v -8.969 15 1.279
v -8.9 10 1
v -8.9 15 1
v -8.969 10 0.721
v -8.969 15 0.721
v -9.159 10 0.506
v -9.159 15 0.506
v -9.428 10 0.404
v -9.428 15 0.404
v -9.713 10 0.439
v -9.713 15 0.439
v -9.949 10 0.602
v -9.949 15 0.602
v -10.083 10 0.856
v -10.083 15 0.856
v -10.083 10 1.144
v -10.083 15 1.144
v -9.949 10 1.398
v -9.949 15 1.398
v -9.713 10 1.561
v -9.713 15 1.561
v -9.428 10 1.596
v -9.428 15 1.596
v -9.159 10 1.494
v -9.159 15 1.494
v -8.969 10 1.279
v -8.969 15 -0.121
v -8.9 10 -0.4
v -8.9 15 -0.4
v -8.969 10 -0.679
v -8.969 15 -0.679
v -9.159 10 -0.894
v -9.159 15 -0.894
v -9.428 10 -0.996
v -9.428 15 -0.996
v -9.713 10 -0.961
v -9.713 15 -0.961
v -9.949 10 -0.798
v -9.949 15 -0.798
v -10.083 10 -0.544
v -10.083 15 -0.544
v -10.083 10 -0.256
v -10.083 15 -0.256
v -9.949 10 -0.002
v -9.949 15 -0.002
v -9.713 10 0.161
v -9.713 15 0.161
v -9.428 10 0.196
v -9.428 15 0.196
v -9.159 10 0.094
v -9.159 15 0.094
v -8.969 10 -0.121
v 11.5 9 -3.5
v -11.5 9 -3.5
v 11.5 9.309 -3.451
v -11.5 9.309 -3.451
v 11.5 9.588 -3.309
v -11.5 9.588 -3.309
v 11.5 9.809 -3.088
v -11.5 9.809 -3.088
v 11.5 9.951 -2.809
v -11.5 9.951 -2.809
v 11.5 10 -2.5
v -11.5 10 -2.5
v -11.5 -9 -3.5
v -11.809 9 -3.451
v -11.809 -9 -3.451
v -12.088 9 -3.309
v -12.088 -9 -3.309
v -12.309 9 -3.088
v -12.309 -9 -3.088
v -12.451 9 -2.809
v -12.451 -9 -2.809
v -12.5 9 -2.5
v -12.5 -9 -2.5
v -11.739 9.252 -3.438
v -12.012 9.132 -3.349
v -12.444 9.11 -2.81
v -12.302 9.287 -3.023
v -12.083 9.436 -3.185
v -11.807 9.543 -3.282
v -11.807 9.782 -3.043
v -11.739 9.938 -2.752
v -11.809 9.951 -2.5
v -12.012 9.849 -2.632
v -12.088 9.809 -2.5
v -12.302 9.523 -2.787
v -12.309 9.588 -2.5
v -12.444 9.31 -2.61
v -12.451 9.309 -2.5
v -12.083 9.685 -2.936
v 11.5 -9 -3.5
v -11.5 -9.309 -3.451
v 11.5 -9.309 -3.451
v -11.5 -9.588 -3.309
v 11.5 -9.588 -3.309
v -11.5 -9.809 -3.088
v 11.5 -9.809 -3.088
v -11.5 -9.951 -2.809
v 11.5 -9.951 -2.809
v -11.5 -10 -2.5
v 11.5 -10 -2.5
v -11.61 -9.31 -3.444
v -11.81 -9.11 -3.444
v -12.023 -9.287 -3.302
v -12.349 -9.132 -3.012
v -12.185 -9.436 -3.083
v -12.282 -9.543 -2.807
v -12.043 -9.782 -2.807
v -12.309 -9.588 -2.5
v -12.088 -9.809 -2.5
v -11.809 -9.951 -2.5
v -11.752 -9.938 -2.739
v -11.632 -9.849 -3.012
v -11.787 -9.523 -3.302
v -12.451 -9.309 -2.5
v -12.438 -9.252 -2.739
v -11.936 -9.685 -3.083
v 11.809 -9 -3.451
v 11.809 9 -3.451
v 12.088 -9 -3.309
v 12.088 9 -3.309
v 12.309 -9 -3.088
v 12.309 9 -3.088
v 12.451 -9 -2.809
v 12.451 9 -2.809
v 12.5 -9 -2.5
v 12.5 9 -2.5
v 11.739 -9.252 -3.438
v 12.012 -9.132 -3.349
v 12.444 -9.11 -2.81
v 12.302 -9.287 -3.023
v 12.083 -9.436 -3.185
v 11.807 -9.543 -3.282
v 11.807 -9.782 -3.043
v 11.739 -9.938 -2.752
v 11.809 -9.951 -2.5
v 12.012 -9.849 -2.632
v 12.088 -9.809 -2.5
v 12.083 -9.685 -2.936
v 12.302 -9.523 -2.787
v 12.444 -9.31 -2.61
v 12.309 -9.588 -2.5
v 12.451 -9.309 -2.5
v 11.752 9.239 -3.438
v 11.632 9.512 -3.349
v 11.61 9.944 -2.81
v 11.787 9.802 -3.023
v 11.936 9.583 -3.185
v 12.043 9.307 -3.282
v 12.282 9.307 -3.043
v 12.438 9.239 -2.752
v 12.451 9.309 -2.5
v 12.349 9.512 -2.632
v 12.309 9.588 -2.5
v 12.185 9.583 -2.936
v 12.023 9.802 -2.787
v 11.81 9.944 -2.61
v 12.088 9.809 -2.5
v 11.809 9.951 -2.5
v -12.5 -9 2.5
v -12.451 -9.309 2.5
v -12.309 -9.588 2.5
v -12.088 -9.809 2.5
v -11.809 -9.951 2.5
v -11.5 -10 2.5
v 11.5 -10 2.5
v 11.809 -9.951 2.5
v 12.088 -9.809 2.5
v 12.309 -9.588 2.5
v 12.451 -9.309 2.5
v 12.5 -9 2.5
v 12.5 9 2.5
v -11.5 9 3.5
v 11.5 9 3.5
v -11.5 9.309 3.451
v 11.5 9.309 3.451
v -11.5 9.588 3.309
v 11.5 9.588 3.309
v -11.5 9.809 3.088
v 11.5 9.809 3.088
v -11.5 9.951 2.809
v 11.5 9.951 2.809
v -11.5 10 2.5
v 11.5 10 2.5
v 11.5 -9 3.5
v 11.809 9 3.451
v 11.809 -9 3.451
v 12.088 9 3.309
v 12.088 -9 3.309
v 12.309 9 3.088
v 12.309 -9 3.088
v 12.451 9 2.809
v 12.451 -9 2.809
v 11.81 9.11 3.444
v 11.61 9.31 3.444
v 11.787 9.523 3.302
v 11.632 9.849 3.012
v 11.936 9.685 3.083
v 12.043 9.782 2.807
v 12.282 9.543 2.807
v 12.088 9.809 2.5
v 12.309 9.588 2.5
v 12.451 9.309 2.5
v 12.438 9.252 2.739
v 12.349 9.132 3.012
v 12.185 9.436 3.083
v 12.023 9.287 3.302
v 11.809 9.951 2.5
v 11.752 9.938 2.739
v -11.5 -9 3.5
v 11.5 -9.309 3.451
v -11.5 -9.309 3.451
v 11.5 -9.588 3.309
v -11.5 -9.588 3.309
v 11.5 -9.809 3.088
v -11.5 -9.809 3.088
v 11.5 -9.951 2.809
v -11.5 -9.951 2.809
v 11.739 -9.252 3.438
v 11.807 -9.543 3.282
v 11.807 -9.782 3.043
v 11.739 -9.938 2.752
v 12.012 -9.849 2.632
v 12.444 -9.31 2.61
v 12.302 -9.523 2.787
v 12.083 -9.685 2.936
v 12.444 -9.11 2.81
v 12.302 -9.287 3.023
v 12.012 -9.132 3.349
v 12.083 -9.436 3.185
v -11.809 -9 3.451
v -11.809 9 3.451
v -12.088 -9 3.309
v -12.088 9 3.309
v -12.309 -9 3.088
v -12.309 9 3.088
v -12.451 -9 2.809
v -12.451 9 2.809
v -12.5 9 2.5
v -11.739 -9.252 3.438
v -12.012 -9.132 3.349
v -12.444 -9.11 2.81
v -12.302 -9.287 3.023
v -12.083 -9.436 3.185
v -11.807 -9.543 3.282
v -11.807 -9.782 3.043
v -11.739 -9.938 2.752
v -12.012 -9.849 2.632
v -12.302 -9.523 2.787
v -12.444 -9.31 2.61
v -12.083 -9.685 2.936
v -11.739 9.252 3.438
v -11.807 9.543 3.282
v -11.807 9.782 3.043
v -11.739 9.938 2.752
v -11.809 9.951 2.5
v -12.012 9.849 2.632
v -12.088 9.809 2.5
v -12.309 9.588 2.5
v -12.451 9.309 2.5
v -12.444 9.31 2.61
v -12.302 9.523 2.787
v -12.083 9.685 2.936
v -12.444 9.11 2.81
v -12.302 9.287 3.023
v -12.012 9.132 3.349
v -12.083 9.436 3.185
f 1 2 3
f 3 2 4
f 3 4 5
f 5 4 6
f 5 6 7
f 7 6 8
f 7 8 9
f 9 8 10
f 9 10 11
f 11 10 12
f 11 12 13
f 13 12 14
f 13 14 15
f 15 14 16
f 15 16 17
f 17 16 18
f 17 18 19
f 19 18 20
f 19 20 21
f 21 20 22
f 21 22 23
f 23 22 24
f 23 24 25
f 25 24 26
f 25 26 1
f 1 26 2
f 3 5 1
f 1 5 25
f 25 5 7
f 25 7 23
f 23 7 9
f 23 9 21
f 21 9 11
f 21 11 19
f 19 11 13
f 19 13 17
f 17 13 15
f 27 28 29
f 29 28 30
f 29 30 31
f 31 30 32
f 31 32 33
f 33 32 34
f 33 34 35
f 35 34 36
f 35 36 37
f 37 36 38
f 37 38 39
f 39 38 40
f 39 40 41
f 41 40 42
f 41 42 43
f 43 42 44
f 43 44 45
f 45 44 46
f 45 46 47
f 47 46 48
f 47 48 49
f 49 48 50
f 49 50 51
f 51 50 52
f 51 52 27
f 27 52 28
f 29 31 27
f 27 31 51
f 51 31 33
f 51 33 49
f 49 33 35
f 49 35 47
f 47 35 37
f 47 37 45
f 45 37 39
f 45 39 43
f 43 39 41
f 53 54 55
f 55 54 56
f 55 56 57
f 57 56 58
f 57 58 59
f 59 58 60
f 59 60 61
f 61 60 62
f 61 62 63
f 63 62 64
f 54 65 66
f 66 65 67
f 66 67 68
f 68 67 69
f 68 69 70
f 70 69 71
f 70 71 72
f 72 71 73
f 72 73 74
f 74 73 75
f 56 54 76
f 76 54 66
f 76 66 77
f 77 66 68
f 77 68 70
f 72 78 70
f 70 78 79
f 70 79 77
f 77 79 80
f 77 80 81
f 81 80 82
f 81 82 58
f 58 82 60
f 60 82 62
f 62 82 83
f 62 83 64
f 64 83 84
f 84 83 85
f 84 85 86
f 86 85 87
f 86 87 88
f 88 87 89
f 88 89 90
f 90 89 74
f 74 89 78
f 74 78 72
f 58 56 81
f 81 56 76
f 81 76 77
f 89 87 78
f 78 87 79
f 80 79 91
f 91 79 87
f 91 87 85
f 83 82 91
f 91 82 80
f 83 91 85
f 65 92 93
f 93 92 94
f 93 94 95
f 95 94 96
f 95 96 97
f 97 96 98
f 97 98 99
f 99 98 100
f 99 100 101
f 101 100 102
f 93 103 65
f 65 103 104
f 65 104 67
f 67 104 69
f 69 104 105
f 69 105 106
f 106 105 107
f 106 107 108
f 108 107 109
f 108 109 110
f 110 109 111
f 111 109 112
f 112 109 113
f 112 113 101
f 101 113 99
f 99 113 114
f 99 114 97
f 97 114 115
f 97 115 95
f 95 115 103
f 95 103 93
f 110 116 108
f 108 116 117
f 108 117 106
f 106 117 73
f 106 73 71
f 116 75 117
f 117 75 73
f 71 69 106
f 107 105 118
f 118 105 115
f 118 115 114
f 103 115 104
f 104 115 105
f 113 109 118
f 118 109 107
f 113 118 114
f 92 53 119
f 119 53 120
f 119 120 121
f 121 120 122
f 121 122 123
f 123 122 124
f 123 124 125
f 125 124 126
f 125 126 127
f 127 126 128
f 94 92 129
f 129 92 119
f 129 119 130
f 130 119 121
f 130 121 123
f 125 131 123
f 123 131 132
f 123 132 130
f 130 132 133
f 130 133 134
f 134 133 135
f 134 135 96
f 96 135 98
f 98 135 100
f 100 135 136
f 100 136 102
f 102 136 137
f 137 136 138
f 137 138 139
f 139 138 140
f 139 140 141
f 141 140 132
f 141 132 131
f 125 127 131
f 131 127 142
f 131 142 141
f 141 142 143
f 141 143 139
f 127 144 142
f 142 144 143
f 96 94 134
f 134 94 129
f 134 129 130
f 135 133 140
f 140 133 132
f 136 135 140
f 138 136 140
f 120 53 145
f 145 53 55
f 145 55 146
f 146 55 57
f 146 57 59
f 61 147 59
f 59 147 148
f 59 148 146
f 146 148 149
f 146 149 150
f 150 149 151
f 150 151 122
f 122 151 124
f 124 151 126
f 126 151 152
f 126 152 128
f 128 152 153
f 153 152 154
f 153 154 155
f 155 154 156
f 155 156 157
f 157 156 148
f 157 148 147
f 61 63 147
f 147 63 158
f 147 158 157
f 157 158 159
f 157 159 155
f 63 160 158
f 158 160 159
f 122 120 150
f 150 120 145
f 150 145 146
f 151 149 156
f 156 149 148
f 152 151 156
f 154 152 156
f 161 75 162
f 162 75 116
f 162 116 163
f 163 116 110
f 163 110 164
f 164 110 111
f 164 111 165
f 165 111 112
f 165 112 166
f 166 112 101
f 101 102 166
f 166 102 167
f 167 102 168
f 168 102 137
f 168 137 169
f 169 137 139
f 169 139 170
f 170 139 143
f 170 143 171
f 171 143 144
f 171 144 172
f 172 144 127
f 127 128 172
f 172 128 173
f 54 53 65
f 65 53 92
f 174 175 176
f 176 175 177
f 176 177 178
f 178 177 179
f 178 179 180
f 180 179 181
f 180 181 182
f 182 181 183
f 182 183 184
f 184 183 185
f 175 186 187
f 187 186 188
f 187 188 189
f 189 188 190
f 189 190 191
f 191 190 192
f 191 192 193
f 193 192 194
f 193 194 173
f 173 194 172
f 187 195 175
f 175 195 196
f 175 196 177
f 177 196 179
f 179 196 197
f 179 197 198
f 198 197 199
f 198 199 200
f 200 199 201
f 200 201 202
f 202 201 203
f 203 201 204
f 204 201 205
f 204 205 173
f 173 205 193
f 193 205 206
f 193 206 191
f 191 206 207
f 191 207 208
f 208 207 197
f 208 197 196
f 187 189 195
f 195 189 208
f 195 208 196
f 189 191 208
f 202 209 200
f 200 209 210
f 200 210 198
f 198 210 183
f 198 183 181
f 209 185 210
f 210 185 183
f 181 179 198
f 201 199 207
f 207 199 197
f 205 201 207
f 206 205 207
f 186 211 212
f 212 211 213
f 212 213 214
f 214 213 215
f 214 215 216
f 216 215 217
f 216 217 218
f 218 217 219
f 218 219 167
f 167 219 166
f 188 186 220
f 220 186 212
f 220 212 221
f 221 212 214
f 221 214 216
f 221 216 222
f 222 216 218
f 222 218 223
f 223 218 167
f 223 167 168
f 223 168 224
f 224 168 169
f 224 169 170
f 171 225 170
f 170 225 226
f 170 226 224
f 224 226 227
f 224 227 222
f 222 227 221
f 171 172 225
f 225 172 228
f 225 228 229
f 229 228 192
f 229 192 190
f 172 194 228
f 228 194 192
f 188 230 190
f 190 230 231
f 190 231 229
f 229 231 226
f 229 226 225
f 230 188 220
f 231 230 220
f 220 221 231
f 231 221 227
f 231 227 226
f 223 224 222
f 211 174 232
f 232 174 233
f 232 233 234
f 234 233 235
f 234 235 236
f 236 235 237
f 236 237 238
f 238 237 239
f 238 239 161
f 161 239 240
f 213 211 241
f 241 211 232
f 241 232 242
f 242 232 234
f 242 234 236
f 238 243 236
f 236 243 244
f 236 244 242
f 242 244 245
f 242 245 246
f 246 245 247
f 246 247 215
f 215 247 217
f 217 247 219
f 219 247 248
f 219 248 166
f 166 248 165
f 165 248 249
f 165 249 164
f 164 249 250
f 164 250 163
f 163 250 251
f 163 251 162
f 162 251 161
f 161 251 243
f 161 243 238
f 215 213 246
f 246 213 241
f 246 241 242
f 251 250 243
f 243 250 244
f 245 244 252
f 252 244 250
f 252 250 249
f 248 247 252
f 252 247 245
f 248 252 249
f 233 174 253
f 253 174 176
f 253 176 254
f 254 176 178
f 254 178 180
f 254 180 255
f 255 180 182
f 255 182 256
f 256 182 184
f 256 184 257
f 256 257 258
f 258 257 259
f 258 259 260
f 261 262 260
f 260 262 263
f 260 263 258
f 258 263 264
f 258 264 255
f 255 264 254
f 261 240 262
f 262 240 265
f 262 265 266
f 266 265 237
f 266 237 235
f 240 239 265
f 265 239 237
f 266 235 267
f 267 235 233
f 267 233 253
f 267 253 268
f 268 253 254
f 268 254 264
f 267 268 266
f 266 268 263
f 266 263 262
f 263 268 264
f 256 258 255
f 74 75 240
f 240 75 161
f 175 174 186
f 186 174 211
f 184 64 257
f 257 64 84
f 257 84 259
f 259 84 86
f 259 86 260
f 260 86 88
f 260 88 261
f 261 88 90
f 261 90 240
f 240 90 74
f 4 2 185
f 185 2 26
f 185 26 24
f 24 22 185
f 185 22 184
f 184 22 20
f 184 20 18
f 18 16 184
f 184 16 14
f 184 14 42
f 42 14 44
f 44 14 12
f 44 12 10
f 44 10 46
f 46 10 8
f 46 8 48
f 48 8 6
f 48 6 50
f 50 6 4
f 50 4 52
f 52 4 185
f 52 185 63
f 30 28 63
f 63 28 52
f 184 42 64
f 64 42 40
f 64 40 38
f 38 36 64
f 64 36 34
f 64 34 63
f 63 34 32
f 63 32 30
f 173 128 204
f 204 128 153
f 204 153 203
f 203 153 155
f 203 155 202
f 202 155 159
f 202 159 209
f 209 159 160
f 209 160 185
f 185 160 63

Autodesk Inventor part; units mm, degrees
ref_plane "YZ Plane" through (0, 0, 0) normal (1, 0, 0) x (0, 1, 0)
ref_plane "XZ Plane" through (0, 0, 0) normal (0, 1, 0) x (-1, 0, 0)
ref_plane "XY Plane" through (0, 0, 0) normal (0, 0, 1) x (1, 0, 0)
sketch "Esboço1" plane through (0, 0, 0) normal (0, 0, 1) x (1, 0, 0)
  line L0 (-12.5, 10) -> (12.5, 10)
  line L1 (12.5, 10) -> (12.5, -10)
  line L2 (12.5, -10) -> (-12.5, -10)
  line L3 (-12.5, -10) -> (-12.5, 10)
  line L4 (-12.5, 10) -> (12.5, -10) construction
  line L5 (12.5, 10) -> (-12.5, -10) construction
  point P0 (0, 0)
  dimension "d1" = 20
  dimension "d2" = 25
extrude "Extrusão1" add sketch "Esboço1" along normal mid plane 7
fillet "Arredondamento1" radius 1 4 edges at (12.5, -10, 0) (-12.5, -10, 0) (12.5, 10, 0) (-12.5, 10, 0)
fillet "Arredondamento2" radius 1 16 edges at (12.2071, 9.7071, 3.5) (0, 10, 3.5) (-12.2071, 9.7071, 3.5) (-12.5, 0, 3.5) (-12.2071, -9.7071, 3.5) (0, -10, 3.5) (12.2071, -9.7071, 3.5) (12.5, 0, 3.5) (-12.2071, 9.7071, -3.5) (0, 10, -3.5) (12.2071, 9.7071, -3.5) (12.5, 0, -3.5) (12.2071, -9.7071, -3.5) (0, -10, -3.5) (-12.2071, -9.7071, -3.5) (-12.5, 0, -3.5)
sketch "Esboço6" plane through (-11.5, 10, -2.5) normal (0, 1, 0) x (1, 0, 0)
  circle A0 centre (2, -2.1) radius 0.6
  circle A1 centre (2, -3.5) radius 0.6
  line L0 (0, 0) -> (23, 0) projected
  line L1 (-1, -5) -> (0, -5) projected
  line L2 (0, 0) -> (0, -5) construction
  line L3 (23, -5) -> (0, -5) projected
  point P0 (11.5, -2.5)
  dimension "d24" = 1.2
  dimension "d25" = 2
  dimension "d26" = 2
  dimension "d27" = 1.5
  dimension "d28" = 1.5
  dimension "d29" = 0.2
extrude "Extrusão5" add sketch "Esboço6" along normal blind 5
properties part number "Bateria"
